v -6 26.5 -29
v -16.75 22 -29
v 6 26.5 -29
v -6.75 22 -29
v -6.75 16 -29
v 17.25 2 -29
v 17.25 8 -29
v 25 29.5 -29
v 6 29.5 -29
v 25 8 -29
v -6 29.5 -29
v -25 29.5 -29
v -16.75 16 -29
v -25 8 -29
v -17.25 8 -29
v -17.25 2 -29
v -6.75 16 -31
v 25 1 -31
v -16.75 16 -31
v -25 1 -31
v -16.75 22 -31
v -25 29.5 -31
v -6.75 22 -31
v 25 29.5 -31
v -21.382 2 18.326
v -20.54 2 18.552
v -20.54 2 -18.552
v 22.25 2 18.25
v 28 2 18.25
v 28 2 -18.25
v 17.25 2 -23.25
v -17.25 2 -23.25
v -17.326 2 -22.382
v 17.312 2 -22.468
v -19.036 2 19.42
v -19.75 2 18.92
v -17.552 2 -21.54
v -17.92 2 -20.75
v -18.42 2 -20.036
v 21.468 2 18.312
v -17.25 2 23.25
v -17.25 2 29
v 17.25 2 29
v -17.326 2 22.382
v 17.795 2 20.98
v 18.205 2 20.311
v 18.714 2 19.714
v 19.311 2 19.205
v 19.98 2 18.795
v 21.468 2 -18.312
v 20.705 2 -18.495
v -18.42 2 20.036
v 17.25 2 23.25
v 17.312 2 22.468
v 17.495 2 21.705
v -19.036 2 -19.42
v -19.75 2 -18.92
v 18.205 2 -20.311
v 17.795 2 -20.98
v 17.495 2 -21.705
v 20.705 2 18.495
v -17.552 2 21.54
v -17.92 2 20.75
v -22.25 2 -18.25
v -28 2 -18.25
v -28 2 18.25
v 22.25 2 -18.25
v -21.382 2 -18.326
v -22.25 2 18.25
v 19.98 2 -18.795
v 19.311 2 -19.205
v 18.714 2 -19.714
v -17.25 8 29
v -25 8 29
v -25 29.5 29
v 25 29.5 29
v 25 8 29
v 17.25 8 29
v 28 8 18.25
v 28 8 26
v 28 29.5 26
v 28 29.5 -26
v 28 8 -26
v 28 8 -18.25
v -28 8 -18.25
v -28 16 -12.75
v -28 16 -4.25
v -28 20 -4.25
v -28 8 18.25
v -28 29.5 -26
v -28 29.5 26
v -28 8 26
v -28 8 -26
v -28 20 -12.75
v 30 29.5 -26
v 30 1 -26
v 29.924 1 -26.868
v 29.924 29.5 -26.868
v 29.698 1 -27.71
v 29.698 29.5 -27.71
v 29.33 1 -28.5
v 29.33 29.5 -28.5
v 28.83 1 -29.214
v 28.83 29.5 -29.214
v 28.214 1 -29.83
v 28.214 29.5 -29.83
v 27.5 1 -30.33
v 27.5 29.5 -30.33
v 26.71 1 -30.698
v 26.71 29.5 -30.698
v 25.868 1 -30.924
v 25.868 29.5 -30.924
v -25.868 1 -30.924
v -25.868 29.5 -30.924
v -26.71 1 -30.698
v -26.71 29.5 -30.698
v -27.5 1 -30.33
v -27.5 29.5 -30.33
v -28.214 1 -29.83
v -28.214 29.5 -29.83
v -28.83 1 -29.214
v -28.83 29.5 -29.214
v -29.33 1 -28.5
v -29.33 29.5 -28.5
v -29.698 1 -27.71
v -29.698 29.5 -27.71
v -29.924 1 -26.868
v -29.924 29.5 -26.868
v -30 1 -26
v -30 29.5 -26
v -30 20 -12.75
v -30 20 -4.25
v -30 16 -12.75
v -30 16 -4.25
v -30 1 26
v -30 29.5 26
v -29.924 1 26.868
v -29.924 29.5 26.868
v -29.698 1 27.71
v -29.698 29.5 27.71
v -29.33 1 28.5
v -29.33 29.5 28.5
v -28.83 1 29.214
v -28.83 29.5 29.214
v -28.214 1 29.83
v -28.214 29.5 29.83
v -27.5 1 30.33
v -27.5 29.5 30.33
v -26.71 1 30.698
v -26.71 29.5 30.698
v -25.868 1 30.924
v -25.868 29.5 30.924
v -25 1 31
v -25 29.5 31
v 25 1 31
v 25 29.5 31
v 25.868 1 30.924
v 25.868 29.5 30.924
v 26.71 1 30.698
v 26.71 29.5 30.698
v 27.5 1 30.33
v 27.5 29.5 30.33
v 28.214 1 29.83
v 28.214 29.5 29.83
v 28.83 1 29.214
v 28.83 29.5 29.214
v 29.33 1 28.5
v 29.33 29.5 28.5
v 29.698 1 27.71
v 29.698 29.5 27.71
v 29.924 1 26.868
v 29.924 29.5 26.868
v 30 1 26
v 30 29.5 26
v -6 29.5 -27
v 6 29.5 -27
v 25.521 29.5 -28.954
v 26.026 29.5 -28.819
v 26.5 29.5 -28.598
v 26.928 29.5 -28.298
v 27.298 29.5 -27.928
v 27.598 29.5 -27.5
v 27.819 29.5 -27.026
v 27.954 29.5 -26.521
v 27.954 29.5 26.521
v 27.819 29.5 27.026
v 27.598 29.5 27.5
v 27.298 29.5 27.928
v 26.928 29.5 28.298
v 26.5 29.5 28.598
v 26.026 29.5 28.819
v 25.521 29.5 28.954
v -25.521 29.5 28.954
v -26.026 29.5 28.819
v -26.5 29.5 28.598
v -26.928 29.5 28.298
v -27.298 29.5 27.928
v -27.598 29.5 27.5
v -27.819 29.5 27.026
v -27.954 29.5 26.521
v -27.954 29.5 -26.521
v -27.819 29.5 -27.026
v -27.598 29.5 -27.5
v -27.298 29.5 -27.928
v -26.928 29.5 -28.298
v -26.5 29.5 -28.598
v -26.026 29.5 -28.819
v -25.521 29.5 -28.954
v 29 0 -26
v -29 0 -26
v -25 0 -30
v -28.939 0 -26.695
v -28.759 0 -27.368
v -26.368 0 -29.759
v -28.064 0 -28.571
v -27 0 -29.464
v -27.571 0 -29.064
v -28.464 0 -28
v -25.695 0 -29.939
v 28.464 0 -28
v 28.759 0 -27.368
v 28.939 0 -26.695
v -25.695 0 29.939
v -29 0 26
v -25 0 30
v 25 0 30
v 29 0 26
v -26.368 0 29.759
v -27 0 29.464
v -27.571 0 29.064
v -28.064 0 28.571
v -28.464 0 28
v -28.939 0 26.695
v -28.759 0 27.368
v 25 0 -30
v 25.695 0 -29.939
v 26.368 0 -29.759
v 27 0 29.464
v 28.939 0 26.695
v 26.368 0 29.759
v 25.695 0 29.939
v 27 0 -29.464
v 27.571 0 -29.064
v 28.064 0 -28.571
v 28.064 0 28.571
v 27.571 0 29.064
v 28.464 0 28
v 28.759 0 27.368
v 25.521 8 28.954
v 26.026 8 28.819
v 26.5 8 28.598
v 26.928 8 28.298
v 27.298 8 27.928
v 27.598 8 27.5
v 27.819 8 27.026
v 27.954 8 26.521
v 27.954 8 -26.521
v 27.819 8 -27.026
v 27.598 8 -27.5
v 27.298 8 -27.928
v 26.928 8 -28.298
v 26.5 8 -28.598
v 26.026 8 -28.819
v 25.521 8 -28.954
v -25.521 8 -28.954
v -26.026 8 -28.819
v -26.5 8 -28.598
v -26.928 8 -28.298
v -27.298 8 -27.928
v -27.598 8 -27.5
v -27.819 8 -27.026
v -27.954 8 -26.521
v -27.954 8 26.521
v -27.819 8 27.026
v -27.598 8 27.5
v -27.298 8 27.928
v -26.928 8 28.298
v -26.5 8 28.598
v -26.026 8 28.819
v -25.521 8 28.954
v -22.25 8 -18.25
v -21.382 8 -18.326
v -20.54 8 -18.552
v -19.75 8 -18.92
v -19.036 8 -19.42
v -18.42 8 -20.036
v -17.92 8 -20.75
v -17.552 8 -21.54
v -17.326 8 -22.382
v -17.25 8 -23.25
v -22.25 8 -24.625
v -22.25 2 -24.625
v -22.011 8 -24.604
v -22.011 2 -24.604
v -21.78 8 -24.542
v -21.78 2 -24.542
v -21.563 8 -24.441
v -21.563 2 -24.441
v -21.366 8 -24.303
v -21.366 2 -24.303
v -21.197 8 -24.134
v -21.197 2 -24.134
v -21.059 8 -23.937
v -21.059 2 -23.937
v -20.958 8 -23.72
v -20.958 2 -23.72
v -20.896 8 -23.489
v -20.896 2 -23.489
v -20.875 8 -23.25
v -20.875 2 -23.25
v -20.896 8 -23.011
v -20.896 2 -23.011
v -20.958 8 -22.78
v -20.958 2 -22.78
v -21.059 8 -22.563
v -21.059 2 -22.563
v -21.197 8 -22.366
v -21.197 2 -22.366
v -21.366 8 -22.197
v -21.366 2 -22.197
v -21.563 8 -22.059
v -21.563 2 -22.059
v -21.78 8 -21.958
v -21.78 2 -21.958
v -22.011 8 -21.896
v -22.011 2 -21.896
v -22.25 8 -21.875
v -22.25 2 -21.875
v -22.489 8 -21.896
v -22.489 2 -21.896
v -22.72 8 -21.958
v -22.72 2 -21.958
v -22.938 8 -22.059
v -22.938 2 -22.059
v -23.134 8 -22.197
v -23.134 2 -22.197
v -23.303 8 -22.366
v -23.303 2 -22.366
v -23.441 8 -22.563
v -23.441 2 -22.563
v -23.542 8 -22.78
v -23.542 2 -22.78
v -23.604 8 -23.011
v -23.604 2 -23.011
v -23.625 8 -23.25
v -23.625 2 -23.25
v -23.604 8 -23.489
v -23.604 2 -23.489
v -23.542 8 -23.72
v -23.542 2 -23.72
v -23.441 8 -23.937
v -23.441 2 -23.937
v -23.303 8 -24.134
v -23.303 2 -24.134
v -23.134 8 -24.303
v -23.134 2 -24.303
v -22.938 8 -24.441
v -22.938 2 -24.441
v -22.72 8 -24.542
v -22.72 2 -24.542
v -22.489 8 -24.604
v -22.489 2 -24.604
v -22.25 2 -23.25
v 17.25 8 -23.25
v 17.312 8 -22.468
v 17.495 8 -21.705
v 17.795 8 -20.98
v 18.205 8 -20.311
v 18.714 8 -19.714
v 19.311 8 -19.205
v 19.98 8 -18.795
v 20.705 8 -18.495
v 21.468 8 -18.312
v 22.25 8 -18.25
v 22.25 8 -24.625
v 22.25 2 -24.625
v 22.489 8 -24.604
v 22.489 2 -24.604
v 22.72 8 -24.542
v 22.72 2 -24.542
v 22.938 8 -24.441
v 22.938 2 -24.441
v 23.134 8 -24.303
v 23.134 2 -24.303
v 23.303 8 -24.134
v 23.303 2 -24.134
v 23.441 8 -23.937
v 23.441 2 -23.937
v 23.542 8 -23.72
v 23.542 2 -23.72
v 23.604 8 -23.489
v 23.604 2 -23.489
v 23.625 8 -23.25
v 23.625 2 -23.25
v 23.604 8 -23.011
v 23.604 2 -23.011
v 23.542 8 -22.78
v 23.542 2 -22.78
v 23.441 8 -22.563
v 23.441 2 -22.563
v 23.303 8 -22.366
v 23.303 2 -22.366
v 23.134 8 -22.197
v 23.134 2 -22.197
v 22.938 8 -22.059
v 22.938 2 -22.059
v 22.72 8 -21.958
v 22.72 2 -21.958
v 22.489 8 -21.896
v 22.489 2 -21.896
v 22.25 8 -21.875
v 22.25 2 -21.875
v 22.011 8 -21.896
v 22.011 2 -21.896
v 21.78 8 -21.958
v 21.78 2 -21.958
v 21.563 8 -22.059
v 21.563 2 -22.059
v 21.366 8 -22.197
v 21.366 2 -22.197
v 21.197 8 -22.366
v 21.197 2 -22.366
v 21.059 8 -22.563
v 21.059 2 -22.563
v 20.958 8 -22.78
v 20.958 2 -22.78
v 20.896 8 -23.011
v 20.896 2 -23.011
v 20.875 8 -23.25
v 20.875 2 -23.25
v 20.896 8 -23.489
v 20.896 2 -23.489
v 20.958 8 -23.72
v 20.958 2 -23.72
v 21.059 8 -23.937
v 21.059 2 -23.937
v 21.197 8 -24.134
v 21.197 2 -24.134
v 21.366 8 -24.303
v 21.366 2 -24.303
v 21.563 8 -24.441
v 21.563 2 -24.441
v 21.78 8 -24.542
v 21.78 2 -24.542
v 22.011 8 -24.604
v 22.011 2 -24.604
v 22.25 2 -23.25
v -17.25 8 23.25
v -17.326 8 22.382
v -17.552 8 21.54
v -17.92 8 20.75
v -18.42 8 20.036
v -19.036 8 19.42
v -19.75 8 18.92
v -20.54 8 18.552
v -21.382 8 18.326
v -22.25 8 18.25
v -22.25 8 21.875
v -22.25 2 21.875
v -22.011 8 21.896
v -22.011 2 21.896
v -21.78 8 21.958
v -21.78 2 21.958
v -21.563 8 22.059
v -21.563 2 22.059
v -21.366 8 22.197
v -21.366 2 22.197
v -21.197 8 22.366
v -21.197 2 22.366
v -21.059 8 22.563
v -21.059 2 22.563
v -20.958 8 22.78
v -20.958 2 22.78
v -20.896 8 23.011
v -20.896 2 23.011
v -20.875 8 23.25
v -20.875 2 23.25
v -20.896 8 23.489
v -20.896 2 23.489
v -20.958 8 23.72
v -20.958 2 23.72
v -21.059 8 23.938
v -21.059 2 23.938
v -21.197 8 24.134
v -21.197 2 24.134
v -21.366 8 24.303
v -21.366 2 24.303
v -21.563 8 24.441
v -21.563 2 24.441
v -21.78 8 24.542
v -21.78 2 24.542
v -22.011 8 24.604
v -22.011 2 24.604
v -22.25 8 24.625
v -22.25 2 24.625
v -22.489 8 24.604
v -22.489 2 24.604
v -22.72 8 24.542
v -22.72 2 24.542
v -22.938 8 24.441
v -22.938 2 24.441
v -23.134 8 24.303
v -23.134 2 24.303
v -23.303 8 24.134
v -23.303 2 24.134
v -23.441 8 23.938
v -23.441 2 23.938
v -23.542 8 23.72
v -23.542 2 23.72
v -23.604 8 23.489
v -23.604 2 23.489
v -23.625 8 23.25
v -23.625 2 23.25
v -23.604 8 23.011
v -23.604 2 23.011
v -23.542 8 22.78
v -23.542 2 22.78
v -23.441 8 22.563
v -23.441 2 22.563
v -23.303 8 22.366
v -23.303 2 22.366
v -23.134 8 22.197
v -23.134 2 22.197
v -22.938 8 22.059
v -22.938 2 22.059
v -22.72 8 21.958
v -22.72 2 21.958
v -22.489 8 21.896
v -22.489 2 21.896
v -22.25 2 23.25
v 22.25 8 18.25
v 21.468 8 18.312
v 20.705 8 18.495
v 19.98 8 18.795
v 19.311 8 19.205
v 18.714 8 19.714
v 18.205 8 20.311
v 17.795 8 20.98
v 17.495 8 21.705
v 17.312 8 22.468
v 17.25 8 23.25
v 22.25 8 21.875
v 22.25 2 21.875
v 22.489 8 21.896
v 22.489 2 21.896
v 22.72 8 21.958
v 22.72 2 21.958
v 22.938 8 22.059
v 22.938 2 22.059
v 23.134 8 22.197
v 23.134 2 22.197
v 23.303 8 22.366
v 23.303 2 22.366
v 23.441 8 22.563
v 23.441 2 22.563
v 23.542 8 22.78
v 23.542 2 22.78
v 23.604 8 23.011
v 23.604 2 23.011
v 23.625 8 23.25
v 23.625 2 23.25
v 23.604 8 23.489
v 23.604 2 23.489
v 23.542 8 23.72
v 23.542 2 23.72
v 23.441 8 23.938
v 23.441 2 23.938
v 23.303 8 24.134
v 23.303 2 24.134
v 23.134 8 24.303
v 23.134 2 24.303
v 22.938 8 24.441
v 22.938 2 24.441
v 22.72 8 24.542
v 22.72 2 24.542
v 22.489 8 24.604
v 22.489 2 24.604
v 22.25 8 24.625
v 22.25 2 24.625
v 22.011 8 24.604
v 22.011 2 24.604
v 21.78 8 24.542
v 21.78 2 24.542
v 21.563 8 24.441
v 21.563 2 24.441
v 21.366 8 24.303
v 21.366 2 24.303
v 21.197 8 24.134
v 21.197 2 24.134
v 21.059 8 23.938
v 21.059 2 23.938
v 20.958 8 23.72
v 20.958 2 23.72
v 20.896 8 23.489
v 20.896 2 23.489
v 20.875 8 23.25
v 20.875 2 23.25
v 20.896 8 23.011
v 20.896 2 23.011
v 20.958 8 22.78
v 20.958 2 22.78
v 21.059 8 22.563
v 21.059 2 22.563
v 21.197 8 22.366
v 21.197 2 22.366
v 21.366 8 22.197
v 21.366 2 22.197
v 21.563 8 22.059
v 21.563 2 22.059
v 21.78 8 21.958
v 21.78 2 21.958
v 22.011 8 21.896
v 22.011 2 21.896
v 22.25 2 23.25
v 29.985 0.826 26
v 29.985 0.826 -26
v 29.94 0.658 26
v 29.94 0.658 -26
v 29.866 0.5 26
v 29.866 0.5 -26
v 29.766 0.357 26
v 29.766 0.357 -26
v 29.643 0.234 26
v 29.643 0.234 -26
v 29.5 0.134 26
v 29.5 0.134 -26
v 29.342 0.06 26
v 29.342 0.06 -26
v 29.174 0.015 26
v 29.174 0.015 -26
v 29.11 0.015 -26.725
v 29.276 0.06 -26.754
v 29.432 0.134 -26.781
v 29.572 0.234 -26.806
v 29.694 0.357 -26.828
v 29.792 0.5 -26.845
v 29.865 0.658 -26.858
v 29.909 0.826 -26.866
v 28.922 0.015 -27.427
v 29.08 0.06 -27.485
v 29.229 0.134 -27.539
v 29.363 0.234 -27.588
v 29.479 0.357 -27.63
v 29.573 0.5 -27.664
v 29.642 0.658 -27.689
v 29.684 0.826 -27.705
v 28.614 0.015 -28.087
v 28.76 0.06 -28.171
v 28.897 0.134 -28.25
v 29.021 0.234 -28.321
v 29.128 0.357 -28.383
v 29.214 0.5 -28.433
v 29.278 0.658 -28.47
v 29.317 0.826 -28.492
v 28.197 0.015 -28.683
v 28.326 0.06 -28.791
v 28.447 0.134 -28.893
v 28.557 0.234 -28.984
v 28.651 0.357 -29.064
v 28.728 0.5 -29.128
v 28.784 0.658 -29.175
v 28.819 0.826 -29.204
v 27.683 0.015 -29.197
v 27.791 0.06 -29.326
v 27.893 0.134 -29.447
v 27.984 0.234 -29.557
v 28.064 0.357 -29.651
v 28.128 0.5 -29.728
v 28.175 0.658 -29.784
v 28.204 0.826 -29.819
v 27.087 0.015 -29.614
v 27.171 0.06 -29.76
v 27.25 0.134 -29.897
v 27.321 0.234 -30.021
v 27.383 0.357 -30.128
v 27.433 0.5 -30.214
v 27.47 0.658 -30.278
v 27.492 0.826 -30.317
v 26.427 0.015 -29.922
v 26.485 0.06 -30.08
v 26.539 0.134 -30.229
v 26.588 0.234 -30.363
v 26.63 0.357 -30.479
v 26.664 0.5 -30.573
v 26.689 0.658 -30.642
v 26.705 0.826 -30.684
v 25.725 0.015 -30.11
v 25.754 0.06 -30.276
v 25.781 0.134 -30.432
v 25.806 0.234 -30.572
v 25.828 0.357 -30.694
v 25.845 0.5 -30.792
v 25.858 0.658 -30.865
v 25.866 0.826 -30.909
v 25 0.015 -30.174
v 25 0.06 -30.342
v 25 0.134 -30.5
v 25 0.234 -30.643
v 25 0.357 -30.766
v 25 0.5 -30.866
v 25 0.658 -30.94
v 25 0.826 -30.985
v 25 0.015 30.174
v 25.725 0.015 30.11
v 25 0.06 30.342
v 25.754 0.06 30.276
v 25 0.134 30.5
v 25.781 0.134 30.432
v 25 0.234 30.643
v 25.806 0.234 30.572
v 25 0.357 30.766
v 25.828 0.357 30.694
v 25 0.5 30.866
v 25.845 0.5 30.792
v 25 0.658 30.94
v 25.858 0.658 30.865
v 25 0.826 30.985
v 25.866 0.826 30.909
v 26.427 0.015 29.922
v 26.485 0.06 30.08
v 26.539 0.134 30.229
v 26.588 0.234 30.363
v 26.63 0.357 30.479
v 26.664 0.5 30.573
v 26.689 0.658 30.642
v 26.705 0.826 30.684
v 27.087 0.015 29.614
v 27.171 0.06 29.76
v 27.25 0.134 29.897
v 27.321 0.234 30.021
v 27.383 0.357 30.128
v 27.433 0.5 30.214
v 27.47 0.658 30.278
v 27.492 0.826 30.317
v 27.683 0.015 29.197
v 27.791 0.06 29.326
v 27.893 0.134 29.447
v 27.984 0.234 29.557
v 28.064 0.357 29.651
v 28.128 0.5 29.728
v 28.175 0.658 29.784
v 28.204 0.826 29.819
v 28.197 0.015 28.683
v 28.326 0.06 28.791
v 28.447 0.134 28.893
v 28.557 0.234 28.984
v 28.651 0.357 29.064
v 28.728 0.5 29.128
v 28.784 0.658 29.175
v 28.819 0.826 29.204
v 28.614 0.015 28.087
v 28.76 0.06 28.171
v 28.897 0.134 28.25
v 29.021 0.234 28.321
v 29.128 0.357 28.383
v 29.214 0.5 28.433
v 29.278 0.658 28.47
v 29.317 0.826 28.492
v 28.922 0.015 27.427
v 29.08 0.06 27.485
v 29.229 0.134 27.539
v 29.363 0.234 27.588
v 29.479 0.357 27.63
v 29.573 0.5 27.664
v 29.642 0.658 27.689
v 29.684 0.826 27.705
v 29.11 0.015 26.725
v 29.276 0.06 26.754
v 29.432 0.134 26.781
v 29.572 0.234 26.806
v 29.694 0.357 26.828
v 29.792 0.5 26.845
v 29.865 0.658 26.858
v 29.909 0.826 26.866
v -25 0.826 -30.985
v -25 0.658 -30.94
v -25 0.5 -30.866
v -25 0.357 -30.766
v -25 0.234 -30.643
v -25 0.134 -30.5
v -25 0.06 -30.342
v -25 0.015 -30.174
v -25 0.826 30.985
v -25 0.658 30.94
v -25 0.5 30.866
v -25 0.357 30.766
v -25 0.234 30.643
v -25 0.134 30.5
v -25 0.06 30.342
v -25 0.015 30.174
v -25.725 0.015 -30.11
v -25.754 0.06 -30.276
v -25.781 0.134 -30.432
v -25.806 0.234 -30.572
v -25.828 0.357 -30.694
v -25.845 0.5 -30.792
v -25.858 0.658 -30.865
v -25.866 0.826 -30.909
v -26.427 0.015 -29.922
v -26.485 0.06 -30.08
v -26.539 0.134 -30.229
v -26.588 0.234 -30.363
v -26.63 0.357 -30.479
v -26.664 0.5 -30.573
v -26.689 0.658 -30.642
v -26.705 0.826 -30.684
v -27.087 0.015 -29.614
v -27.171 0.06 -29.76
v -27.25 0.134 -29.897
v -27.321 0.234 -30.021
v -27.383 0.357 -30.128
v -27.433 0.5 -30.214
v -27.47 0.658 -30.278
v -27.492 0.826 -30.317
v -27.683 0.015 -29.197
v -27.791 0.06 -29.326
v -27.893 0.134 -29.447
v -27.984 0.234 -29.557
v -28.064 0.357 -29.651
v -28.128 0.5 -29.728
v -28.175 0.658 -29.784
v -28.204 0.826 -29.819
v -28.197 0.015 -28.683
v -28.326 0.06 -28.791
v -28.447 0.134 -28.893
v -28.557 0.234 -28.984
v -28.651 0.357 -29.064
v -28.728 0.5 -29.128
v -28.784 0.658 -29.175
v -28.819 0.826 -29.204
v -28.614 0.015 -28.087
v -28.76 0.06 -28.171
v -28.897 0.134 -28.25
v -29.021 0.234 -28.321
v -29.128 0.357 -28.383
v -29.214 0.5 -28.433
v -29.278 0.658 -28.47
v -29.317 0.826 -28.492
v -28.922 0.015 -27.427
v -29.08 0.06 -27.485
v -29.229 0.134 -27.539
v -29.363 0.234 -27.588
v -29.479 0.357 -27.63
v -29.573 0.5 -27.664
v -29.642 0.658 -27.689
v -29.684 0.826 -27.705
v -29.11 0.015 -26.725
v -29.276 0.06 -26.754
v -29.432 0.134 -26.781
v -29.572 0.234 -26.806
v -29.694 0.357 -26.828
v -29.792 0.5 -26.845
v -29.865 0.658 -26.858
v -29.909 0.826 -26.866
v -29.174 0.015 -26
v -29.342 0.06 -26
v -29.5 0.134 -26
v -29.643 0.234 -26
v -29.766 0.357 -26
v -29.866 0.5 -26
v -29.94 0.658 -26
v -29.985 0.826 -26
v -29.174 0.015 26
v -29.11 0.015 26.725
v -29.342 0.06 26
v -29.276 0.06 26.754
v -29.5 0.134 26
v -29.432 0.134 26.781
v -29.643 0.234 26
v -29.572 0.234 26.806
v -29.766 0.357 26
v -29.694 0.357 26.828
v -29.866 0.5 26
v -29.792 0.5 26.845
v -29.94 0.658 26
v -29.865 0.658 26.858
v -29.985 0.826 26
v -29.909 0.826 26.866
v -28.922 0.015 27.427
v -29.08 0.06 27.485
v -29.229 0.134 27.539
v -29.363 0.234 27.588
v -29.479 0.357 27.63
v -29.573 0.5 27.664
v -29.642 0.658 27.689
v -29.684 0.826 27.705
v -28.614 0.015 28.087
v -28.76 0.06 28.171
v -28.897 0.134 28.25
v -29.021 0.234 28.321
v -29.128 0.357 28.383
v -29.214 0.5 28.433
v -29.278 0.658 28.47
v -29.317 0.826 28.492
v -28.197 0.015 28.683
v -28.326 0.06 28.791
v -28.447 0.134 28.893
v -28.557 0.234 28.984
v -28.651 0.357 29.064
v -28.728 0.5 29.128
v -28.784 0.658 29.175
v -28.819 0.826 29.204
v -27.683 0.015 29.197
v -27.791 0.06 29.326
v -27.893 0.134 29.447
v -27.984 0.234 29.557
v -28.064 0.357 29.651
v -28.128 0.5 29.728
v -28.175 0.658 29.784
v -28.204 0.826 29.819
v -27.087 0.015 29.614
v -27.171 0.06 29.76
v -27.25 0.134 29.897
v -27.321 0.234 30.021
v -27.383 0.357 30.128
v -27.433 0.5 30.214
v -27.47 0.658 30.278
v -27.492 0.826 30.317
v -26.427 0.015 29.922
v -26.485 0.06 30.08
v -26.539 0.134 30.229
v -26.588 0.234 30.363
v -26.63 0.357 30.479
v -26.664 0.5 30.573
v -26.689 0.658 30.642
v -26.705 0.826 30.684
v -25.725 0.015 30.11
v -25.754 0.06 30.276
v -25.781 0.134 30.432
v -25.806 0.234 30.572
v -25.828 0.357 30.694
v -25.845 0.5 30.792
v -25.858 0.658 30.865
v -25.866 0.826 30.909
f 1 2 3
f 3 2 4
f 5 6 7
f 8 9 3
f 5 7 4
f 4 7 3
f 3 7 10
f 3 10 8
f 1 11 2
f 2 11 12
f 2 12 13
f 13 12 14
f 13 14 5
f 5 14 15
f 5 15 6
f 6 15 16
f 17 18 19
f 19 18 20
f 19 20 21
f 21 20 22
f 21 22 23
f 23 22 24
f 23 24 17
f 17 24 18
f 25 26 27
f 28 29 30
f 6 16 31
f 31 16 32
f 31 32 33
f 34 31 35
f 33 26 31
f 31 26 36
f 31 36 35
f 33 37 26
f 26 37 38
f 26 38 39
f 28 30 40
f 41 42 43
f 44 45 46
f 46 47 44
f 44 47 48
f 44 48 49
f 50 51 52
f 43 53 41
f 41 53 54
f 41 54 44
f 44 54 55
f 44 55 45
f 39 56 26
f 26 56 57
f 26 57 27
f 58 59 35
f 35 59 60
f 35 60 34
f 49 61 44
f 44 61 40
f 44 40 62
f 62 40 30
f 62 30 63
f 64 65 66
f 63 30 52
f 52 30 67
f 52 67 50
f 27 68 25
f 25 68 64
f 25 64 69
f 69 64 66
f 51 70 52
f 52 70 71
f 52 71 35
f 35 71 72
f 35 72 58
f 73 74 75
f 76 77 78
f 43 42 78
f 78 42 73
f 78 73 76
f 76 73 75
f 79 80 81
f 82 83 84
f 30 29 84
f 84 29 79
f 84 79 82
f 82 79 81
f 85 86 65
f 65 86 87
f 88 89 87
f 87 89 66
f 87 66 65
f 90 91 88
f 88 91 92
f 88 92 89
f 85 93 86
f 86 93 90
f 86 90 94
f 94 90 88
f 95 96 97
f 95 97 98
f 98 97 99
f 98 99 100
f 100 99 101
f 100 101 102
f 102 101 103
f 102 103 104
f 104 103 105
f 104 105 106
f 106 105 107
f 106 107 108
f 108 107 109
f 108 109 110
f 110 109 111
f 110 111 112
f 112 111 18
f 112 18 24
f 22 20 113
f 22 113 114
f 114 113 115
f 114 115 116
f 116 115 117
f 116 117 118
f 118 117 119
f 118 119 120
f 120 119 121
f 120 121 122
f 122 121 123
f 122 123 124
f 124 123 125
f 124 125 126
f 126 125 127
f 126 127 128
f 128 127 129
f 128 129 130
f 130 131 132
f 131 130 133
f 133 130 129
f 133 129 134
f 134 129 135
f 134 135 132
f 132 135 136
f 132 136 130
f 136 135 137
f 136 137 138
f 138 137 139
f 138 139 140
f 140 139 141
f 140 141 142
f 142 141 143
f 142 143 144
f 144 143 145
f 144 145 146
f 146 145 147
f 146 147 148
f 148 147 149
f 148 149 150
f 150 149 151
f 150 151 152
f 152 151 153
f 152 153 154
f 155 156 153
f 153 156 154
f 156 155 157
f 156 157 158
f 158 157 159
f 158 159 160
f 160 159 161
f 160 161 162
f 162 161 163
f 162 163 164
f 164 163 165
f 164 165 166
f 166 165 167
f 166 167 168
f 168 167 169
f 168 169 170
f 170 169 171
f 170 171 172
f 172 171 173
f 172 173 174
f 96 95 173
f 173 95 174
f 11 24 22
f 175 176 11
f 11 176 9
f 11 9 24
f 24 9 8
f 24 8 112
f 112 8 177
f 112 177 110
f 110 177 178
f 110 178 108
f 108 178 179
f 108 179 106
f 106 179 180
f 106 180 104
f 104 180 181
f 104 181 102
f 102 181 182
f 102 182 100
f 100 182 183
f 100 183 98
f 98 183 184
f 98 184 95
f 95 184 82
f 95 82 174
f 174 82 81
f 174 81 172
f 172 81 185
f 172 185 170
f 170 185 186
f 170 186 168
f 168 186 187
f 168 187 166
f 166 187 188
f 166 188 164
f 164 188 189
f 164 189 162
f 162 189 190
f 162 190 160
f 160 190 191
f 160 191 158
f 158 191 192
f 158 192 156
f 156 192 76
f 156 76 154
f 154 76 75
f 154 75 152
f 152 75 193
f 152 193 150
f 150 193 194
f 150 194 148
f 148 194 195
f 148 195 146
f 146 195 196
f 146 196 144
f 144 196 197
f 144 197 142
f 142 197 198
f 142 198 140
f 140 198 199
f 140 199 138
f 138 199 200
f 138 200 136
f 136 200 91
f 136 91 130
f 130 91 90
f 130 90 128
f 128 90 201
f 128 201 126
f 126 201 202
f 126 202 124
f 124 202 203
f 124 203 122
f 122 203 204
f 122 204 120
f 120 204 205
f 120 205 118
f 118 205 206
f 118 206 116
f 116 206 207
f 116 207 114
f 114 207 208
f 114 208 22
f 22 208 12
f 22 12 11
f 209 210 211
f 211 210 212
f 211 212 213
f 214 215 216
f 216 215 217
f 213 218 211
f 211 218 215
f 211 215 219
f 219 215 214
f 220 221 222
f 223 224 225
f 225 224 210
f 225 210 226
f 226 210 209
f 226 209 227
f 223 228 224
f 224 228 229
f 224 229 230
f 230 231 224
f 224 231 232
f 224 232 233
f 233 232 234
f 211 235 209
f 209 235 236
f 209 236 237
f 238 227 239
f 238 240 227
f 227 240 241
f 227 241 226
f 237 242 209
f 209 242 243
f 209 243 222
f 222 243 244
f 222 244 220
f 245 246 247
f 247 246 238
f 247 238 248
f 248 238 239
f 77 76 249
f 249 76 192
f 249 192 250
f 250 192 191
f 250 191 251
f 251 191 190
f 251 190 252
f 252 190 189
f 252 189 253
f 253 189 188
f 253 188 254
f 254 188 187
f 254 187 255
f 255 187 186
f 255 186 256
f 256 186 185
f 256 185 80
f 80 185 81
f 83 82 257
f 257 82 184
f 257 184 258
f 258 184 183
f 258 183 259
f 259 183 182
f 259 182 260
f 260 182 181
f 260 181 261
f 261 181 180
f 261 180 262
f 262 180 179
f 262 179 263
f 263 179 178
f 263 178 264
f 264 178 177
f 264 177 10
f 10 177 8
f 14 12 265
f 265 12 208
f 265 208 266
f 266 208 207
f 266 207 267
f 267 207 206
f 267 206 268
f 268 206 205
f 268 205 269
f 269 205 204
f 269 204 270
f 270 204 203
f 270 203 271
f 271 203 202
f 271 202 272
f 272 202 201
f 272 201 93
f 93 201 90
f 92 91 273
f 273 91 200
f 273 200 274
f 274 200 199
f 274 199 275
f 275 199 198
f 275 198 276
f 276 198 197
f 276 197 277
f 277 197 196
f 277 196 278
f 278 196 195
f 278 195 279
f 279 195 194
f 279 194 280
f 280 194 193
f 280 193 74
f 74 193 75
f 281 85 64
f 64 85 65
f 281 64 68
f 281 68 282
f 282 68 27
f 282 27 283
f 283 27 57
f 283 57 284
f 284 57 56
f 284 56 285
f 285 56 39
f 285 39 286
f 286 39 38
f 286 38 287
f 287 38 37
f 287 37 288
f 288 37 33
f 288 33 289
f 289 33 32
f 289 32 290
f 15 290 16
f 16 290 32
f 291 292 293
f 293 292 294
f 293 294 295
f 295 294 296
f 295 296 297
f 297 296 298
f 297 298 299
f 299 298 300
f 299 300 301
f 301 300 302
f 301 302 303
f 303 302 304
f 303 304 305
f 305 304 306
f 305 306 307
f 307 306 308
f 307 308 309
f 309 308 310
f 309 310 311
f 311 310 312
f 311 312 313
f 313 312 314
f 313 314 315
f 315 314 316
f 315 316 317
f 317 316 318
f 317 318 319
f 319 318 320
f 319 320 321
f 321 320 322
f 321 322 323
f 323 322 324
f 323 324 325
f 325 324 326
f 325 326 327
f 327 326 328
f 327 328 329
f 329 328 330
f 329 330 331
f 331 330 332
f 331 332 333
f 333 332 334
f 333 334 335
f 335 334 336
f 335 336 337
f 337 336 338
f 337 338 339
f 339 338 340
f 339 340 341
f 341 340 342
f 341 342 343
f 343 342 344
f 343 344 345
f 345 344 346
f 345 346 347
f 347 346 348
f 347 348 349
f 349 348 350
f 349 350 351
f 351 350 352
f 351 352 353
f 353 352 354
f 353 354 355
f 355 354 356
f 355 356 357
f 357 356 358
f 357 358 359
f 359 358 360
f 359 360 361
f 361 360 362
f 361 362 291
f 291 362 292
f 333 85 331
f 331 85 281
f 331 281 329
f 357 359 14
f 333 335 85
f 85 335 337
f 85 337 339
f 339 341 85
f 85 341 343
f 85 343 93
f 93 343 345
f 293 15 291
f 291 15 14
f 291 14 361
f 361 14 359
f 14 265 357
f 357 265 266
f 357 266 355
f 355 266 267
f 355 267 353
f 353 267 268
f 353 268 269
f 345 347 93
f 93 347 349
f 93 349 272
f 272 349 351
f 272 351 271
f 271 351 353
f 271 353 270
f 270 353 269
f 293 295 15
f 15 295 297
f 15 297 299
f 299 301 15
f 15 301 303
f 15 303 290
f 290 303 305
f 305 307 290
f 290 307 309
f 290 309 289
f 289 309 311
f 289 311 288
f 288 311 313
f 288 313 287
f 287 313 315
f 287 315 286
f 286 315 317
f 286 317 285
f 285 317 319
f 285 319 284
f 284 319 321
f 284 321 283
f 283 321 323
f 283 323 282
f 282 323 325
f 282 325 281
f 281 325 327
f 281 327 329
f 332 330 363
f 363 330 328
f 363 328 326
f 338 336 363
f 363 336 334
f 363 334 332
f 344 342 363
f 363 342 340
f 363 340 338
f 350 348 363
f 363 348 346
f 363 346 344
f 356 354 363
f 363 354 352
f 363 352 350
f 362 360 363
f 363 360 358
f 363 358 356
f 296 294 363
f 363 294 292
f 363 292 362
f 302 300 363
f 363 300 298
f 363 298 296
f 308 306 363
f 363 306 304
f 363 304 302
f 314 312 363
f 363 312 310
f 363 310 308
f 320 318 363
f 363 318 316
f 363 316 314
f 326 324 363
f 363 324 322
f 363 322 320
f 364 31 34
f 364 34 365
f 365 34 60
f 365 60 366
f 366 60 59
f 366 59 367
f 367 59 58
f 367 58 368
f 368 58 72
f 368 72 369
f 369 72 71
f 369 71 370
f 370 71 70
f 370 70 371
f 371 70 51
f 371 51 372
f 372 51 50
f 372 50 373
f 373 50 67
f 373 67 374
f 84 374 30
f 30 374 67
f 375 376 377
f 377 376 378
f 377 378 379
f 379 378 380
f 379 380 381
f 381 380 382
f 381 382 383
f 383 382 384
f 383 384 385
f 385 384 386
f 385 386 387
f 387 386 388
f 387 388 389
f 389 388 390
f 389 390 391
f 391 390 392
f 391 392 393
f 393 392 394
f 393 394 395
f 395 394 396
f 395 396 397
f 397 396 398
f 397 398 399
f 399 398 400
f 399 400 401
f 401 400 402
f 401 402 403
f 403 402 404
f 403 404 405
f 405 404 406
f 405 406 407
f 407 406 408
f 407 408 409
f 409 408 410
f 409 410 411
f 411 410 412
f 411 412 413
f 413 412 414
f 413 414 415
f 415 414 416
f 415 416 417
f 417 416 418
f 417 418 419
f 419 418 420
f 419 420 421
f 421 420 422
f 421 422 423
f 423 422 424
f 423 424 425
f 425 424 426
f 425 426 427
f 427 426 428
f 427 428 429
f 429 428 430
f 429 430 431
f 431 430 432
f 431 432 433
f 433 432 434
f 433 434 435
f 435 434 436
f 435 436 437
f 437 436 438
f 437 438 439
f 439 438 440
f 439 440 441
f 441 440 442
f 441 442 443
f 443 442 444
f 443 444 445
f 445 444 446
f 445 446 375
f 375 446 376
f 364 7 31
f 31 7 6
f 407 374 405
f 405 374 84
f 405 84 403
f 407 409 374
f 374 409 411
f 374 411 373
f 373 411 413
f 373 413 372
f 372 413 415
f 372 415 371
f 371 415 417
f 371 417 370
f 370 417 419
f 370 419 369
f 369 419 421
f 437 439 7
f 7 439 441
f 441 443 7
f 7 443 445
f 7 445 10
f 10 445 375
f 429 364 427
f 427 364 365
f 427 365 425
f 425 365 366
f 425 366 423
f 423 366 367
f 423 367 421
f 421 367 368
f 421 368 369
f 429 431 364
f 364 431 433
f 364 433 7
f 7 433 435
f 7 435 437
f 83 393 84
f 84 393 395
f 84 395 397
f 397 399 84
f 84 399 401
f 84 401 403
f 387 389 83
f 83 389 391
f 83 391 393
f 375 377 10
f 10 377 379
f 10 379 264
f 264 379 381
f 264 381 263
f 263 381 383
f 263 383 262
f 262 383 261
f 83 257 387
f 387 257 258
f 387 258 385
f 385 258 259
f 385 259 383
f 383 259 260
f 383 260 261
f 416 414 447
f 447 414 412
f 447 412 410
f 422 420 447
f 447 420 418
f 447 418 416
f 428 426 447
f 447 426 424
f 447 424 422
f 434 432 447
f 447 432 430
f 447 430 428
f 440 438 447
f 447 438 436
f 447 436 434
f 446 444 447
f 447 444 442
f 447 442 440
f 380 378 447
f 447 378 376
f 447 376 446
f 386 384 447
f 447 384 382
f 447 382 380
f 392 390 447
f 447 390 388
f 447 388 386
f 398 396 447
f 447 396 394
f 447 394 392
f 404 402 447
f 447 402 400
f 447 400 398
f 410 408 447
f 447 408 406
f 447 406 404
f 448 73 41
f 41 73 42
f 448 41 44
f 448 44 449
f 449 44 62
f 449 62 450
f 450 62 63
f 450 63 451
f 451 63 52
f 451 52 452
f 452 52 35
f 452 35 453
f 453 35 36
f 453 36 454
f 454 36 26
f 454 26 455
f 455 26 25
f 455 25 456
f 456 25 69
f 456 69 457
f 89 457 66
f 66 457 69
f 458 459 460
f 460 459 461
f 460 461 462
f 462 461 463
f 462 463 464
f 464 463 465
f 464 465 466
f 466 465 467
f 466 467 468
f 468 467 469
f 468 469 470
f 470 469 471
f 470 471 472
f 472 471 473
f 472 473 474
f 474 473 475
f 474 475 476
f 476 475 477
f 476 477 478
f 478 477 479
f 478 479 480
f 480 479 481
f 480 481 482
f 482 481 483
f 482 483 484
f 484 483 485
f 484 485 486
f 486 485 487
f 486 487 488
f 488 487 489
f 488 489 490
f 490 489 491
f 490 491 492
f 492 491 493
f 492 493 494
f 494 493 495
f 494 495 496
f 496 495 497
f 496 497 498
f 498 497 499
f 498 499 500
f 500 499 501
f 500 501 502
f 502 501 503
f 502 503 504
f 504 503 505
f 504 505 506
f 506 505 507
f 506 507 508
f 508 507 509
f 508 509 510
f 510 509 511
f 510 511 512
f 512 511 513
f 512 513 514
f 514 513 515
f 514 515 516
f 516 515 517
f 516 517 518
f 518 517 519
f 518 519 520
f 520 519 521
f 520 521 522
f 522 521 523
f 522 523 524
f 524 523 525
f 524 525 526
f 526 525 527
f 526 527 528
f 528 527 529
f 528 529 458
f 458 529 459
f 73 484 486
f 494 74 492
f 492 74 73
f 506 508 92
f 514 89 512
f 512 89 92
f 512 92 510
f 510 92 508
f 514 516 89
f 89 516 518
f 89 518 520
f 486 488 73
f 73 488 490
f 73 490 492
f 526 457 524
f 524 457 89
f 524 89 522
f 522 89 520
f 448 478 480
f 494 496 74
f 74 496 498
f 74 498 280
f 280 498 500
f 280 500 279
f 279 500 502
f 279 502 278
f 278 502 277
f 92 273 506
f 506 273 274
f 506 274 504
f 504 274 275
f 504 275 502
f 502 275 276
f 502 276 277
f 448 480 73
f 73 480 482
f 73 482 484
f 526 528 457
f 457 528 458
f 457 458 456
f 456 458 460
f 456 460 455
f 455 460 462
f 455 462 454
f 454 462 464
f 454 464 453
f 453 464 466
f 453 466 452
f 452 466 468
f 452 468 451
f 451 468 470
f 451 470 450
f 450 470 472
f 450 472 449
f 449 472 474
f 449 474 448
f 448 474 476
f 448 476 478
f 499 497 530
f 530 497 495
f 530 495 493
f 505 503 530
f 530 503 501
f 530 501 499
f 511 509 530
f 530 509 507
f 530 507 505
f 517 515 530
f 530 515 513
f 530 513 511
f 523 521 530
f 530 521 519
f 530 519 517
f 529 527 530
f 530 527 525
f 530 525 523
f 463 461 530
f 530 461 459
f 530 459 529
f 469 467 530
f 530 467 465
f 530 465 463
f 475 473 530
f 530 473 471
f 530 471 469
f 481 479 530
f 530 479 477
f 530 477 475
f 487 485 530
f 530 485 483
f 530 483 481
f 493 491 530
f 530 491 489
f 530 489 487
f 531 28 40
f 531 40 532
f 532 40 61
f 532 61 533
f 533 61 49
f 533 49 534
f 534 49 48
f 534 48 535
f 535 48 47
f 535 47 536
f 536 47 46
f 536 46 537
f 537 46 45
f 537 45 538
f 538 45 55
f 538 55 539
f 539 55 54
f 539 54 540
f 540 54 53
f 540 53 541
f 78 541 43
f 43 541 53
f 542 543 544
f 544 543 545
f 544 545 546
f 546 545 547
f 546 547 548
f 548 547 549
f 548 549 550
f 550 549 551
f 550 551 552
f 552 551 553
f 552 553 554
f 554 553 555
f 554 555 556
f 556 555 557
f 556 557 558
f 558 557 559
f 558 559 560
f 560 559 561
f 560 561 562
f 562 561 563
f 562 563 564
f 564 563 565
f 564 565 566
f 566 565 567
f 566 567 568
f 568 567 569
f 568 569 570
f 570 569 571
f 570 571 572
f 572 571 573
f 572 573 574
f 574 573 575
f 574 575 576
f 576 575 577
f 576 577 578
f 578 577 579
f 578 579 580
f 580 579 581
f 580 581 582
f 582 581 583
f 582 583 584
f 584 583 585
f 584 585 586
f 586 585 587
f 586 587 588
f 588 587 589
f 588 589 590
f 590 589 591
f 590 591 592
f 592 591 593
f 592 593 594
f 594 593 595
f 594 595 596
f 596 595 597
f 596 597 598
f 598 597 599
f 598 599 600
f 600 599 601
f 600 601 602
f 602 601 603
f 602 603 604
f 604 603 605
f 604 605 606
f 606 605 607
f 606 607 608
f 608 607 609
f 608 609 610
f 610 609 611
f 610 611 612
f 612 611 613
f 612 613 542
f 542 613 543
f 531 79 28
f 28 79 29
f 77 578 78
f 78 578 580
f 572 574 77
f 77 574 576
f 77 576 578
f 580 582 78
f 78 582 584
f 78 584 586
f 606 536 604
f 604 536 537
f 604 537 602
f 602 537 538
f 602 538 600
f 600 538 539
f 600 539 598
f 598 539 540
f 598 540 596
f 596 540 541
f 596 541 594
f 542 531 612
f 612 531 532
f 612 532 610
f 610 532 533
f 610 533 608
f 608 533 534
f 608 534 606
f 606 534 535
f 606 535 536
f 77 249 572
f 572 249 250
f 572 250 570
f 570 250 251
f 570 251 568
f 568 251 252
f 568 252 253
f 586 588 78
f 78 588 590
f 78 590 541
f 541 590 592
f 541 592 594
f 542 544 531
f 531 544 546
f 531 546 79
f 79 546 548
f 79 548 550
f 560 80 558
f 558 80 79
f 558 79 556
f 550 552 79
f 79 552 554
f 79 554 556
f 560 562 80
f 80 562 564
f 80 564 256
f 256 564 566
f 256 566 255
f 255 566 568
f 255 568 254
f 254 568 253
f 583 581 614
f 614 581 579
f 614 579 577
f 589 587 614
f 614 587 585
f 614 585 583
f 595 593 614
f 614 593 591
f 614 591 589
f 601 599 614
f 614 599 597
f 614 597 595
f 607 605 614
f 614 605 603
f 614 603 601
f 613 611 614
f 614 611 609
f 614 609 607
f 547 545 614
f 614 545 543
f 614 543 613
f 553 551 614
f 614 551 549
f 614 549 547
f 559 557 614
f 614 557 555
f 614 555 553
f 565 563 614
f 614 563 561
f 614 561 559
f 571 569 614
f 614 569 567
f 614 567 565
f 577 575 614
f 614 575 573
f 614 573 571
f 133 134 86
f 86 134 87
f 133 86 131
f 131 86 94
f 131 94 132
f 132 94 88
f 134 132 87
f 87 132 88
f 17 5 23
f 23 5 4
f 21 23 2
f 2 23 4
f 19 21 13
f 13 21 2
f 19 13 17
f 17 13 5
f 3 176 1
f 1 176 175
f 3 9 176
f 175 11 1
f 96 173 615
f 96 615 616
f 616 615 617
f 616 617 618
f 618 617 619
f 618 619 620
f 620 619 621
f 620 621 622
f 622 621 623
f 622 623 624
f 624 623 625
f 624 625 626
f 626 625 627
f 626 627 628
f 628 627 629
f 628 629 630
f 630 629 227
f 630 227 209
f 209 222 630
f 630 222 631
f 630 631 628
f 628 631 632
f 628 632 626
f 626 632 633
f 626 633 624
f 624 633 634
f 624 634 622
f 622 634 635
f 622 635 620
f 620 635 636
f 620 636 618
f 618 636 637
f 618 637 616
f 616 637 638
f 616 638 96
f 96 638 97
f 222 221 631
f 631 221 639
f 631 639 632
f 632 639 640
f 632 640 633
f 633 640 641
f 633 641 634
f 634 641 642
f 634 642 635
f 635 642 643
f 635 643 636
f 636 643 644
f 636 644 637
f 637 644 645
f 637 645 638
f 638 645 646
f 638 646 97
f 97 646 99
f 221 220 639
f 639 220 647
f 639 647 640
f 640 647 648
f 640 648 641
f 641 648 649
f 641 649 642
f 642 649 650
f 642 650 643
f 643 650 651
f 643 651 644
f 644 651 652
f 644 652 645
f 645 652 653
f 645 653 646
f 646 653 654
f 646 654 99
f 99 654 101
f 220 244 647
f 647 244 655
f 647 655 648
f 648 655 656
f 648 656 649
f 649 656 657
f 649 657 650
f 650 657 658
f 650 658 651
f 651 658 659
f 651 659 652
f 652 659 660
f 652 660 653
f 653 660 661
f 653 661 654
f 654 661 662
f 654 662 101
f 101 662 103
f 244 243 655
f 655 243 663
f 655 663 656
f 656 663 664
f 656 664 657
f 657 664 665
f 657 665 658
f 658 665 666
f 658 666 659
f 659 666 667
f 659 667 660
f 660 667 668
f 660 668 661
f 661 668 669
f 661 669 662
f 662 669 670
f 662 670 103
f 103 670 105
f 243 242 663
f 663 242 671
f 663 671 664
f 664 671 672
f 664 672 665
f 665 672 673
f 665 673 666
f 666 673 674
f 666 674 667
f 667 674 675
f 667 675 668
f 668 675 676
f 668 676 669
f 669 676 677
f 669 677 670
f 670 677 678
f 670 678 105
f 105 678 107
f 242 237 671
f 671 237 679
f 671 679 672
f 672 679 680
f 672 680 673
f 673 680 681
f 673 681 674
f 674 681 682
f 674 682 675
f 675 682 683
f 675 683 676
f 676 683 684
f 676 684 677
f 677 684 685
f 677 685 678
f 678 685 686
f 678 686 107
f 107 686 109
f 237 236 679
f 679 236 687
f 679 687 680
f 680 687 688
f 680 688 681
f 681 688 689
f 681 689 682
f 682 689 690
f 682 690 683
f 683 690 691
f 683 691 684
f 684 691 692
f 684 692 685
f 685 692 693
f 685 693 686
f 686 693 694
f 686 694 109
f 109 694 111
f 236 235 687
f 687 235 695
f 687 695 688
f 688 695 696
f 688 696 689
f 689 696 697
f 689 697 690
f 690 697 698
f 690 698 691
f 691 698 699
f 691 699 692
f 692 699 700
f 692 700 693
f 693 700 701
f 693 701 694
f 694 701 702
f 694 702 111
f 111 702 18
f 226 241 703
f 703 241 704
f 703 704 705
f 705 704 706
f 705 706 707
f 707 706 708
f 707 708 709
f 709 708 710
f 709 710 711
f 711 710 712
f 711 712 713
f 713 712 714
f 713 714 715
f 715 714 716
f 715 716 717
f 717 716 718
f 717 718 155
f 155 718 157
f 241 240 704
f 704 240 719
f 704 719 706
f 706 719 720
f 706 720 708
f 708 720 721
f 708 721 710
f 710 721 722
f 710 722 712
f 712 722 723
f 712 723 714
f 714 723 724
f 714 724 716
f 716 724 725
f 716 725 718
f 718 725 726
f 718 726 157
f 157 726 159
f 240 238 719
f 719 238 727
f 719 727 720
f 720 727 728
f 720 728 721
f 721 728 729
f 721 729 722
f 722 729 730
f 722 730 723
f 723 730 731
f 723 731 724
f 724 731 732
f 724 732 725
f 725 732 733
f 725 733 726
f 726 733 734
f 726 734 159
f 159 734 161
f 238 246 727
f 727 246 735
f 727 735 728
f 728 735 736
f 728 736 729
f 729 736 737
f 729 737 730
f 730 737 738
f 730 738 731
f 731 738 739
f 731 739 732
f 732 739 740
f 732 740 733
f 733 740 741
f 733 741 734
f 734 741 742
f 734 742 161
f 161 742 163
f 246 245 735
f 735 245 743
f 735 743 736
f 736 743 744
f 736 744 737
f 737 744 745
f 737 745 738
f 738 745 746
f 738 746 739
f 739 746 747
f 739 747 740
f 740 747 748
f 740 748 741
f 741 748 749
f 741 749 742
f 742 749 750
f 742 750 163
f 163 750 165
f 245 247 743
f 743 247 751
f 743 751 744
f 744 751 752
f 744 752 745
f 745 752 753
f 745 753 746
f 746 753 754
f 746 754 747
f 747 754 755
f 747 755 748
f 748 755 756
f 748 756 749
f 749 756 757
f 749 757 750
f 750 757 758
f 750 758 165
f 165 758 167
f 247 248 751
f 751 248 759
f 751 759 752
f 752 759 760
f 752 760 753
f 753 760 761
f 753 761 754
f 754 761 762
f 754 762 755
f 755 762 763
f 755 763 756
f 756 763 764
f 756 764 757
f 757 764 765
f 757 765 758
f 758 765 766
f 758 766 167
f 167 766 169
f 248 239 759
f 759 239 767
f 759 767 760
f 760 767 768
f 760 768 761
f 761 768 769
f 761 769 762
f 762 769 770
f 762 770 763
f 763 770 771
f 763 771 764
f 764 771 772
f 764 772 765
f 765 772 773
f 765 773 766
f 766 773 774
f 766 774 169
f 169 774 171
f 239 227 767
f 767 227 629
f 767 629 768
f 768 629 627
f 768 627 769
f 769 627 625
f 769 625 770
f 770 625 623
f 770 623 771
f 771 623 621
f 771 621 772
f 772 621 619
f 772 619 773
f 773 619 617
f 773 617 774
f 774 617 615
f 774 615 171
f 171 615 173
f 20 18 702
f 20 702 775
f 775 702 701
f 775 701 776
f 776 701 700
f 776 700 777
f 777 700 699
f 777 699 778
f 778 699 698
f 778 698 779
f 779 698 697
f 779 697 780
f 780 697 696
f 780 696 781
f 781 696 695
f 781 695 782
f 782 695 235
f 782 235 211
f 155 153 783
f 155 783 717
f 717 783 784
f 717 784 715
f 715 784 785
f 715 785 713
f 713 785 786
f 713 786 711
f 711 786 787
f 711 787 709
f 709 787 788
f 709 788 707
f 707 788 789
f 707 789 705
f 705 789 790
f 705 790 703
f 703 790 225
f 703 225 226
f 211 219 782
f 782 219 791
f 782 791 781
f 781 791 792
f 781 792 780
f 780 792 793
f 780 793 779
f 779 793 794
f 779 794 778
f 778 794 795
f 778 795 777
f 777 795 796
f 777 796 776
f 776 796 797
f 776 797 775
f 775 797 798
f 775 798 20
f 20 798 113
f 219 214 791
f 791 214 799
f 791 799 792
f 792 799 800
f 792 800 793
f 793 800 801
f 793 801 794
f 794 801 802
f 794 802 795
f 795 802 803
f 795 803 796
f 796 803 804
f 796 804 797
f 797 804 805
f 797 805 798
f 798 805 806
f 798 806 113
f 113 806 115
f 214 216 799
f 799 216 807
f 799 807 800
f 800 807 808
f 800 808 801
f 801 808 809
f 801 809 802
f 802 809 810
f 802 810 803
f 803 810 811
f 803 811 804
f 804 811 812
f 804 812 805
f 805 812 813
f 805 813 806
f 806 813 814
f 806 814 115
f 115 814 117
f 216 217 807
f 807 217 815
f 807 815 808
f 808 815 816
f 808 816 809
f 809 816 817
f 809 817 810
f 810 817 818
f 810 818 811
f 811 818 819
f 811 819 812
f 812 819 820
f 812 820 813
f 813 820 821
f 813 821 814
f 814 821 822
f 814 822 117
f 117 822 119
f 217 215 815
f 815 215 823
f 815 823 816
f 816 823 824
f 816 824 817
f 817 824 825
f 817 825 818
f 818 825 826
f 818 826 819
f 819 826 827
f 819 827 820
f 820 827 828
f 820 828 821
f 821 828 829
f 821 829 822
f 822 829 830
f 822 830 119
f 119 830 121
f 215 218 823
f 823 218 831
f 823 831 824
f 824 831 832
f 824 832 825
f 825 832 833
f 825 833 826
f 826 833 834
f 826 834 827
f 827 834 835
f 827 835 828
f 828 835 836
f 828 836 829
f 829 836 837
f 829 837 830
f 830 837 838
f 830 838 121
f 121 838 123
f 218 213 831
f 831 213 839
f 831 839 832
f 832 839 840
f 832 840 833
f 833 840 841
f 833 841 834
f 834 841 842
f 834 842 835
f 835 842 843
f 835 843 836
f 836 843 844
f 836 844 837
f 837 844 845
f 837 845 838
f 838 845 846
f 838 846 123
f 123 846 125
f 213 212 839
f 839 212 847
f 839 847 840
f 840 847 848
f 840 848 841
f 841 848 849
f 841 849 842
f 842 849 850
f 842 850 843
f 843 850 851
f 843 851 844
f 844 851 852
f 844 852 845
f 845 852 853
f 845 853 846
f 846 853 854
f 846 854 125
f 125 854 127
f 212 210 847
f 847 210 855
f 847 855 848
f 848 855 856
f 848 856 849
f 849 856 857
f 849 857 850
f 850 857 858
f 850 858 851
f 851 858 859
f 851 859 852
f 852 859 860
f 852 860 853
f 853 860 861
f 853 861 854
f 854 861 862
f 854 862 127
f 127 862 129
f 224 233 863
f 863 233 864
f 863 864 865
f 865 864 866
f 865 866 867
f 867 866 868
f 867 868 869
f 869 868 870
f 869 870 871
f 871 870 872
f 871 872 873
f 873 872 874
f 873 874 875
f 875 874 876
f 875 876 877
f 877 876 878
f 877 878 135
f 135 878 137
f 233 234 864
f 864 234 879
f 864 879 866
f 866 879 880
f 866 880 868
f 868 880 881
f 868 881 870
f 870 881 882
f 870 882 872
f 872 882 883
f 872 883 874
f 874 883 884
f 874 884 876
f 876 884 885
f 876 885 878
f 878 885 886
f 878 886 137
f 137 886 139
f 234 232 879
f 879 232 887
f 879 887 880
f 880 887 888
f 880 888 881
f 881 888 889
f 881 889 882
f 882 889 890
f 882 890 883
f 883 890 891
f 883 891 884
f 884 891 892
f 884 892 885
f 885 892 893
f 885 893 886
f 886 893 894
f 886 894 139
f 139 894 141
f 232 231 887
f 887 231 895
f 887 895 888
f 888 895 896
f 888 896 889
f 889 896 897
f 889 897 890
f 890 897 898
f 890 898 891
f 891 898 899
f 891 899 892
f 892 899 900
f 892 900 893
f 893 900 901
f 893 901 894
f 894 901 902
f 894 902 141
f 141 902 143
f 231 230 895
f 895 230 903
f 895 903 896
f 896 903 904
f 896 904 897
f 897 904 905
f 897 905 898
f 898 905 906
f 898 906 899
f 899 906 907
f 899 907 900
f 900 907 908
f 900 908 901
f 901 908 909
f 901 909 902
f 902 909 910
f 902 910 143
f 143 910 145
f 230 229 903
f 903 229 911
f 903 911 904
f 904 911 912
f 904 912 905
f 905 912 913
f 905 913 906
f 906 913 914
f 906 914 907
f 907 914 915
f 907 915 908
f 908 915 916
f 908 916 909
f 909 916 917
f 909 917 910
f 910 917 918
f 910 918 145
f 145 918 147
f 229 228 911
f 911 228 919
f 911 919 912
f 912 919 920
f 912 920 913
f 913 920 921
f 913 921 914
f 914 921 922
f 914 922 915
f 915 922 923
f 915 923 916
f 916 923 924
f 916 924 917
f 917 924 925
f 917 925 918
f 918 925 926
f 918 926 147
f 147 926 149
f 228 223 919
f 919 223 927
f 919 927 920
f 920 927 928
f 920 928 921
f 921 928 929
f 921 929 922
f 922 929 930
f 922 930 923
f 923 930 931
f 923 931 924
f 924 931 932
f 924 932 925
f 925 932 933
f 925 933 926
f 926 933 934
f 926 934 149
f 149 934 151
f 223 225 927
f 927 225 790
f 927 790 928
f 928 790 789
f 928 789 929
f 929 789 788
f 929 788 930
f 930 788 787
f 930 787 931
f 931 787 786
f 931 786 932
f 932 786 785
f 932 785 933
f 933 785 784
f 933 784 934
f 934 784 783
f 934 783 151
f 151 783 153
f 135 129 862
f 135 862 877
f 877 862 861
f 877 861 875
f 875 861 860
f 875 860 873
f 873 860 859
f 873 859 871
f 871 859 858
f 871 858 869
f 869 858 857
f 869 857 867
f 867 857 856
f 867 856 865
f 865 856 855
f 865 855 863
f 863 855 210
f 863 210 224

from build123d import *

# Parameters (mm, degrees)
BOSS_EXTRUDE1_DEPTH = 29.5
CUT_EXTRUDE1_DEPTH  = 27.5
SKETCH4_R           = 1.375
BOSS_EXTRUDE2_DEPTH = 6
CUT_EXTRUDE2_REACH  = 62
SKETCH5_W           = 8.5
SKETCH5_H           = 4
CUT_EXTRUDE3_REACH  = 64
SKETCH6_W           = 10
SKETCH6_H           = 6
BOSS_EXTRUDE3_DEPTH = 12
FILLET1_R           = 1


with BuildPart() as part:
    # Sketch1 → Boss-Extrude1 (new body)
    with BuildSketch(Plane(origin=(0, 0, 0), x_dir=(1, 0, 0), z_dir=(0, 1, 0))):
        with BuildLine():
            Line((-25, -31), (25, -31))
            ThreePointArc((25, -31), (28.535533906, -29.535533906), (30, -26))
            Line((30, -26), (30, 26))
            ThreePointArc((30, 26), (28.535533906, 29.535533906), (25, 31))
            Line((25, 31), (-25, 31))
            ThreePointArc((-25, 31), (-28.535533906, 29.535533906), (-30, 26))
            Line((-30, 26), (-30, -26))
            ThreePointArc((-30, -26), (-28.535533906, -29.535533906), (-25, -31))
        make_face()
    extrude(amount=BOSS_EXTRUDE1_DEPTH)

    # Sketch2 → Cut-Extrude1 (cut)
    with BuildSketch(Plane(origin=(0, 29.5, 0), x_dir=(1, 0, 0), z_dir=(0, 1, 0))):
        with BuildLine():
            Line((-25, -29), (25, -29))
            ThreePointArc((25, -29), (27.121320344, -28.121320344), (28, -26))
            Line((28, -26), (28, 26))
            ThreePointArc((28, 26), (27.121320344, 28.121320344), (25, 29))
            Line((25, 29), (-25, 29))
            ThreePointArc((-25, 29), (-27.121320344, 28.121320344), (-28, 26))
            Line((-28, 26), (-28, -26))
            ThreePointArc((-28, -26), (-27.121320344, -28.121320344), (-25, -29))
        make_face()
    extrude(amount=-CUT_EXTRUDE1_DEPTH, mode=Mode.SUBTRACT)

    # Sketch4 → Boss-Extrude2 (add)
    with BuildSketch(Plane(origin=(0, 2, 0), x_dir=(1, 0, 0), z_dir=(0, 1, 0))):
        with BuildLine():
            Line((-17.25, 23.25), (-17.25, 29))
            Line((-17.25, 29), (-25, 29))
            ThreePointArc((-25, 29), (-27.121320344, 28.121320344), (-28, 26))
            Line((-28, 26), (-28, 18.25))
            Line((-28, 18.25), (-22.25, 18.25))
            ThreePointArc((-22.25, 18.25), (-18.714466094, 19.714466094), (-17.25, 23.25))
        make_face()
        with Locations((-22.25, 23.25)):
            Circle(SKETCH4_R, mode=Mode.SUBTRACT)
        with BuildLine():
            Line((22.25, 18.25), (28, 18.25))
            Line((28, 18.25), (28, 26))
            ThreePointArc((28, 26), (27.121320344, 28.121320344), (25, 29))
            Line((25, 29), (17.25, 29))
            Line((17.25, 29), (17.25, 23.25))
            ThreePointArc((17.25, 23.25), (18.714466094, 19.714466094), (22.25, 18.25))
        make_face()
        with Locations((22.25, 23.25)):
            Circle(SKETCH4_R, mode=Mode.SUBTRACT)
        with BuildLine():
            Line((-25, -29), (-17.25, -29))
            Line((-17.25, -29), (-17.25, -23.25))
            ThreePointArc((-17.25, -23.25), (-18.714466094, -19.714466094), (-22.25, -18.25))
            Line((-22.25, -18.25), (-28, -18.25))
            Line((-28, -18.25), (-28, -26))
            ThreePointArc((-28, -26), (-27.121320344, -28.121320344), (-25, -29))
        make_face()
        with Locations((-22.25, -23.25)):
            Circle(SKETCH4_R, mode=Mode.SUBTRACT)
        with BuildLine():
            Line((28, -26), (28, -18.25))
            Line((28, -18.25), (22.25, -18.25))
            ThreePointArc((22.25, -18.25), (18.714466094, -19.714466094), (17.25, -23.25))
            Line((17.25, -23.25), (17.25, -29))
            Line((17.25, -29), (25, -29))
            ThreePointArc((25, -29), (27.121320344, -28.121320344), (28, -26))
        make_face()
        with Locations((22.25, -23.25)):
            Circle(SKETCH4_R, mode=Mode.SUBTRACT)
    extrude(amount=BOSS_EXTRUDE2_DEPTH)

    # Sketch5 → Cut-Extrude2 (cut, up to next)
    with BuildSketch(Plane.ZY.offset(30), mode=Mode.PRIVATE) as cut_extrude2_sk1:
        with Locations((-8.5, 18)):
            Rectangle(SKETCH5_W, SKETCH5_H)
    cut_extrude2_tool1 = extrude(cut_extrude2_sk1.sketch, amount=-CUT_EXTRUDE2_REACH, mode=Mode.PRIVATE) & part.part
    add(cut_extrude2_tool1.solids().sort_by_distance((-30, 18, -8.5))[0], mode=Mode.SUBTRACT)

    # Sketch6 → Cut-Extrude3 (cut, up to next)
    with BuildSketch(Plane(origin=(0, 0, -31), x_dir=(-1, 0, 0), z_dir=(0, 0, -1)), mode=Mode.PRIVATE) as cut_extrude3_sk1:
        with Locations((11.75, 19)):
            Rectangle(SKETCH6_W, SKETCH6_H)
    cut_extrude3_tool1 = extrude(cut_extrude3_sk1.sketch, amount=-CUT_EXTRUDE3_REACH, mode=Mode.PRIVATE) & part.part
    add(cut_extrude3_tool1.solids().sort_by_distance((-11.75, 19, -31))[0], mode=Mode.SUBTRACT)

    # Sketch7 → Boss-Extrude3 (add)
    with BuildSketch(Plane.ZY.offset(6)):
        Polygon((-29, 29.5), (-29, 26.5), (-27, 29.5), align=None)
    extrude(amount=-BOSS_EXTRUDE3_DEPTH)

    # Fillet1
    fillet1_edges = [part.edges().sort_by_distance(p)[0] for p in [
        (0, 0, -31),
        (28.535533906, 0, -29.535533906),
        (30, 0, 0),
        (28.535533906, 0, 29.535533906),
        (0, 0, 31),
        (-28.535533906, 0, 29.535533906),
        (-30, 0, 0),
        (-28.535533906, 0, -29.535533906),
    ]]
    fillet(fillet1_edges, radius=FILLET1_R)


solid = part.part
